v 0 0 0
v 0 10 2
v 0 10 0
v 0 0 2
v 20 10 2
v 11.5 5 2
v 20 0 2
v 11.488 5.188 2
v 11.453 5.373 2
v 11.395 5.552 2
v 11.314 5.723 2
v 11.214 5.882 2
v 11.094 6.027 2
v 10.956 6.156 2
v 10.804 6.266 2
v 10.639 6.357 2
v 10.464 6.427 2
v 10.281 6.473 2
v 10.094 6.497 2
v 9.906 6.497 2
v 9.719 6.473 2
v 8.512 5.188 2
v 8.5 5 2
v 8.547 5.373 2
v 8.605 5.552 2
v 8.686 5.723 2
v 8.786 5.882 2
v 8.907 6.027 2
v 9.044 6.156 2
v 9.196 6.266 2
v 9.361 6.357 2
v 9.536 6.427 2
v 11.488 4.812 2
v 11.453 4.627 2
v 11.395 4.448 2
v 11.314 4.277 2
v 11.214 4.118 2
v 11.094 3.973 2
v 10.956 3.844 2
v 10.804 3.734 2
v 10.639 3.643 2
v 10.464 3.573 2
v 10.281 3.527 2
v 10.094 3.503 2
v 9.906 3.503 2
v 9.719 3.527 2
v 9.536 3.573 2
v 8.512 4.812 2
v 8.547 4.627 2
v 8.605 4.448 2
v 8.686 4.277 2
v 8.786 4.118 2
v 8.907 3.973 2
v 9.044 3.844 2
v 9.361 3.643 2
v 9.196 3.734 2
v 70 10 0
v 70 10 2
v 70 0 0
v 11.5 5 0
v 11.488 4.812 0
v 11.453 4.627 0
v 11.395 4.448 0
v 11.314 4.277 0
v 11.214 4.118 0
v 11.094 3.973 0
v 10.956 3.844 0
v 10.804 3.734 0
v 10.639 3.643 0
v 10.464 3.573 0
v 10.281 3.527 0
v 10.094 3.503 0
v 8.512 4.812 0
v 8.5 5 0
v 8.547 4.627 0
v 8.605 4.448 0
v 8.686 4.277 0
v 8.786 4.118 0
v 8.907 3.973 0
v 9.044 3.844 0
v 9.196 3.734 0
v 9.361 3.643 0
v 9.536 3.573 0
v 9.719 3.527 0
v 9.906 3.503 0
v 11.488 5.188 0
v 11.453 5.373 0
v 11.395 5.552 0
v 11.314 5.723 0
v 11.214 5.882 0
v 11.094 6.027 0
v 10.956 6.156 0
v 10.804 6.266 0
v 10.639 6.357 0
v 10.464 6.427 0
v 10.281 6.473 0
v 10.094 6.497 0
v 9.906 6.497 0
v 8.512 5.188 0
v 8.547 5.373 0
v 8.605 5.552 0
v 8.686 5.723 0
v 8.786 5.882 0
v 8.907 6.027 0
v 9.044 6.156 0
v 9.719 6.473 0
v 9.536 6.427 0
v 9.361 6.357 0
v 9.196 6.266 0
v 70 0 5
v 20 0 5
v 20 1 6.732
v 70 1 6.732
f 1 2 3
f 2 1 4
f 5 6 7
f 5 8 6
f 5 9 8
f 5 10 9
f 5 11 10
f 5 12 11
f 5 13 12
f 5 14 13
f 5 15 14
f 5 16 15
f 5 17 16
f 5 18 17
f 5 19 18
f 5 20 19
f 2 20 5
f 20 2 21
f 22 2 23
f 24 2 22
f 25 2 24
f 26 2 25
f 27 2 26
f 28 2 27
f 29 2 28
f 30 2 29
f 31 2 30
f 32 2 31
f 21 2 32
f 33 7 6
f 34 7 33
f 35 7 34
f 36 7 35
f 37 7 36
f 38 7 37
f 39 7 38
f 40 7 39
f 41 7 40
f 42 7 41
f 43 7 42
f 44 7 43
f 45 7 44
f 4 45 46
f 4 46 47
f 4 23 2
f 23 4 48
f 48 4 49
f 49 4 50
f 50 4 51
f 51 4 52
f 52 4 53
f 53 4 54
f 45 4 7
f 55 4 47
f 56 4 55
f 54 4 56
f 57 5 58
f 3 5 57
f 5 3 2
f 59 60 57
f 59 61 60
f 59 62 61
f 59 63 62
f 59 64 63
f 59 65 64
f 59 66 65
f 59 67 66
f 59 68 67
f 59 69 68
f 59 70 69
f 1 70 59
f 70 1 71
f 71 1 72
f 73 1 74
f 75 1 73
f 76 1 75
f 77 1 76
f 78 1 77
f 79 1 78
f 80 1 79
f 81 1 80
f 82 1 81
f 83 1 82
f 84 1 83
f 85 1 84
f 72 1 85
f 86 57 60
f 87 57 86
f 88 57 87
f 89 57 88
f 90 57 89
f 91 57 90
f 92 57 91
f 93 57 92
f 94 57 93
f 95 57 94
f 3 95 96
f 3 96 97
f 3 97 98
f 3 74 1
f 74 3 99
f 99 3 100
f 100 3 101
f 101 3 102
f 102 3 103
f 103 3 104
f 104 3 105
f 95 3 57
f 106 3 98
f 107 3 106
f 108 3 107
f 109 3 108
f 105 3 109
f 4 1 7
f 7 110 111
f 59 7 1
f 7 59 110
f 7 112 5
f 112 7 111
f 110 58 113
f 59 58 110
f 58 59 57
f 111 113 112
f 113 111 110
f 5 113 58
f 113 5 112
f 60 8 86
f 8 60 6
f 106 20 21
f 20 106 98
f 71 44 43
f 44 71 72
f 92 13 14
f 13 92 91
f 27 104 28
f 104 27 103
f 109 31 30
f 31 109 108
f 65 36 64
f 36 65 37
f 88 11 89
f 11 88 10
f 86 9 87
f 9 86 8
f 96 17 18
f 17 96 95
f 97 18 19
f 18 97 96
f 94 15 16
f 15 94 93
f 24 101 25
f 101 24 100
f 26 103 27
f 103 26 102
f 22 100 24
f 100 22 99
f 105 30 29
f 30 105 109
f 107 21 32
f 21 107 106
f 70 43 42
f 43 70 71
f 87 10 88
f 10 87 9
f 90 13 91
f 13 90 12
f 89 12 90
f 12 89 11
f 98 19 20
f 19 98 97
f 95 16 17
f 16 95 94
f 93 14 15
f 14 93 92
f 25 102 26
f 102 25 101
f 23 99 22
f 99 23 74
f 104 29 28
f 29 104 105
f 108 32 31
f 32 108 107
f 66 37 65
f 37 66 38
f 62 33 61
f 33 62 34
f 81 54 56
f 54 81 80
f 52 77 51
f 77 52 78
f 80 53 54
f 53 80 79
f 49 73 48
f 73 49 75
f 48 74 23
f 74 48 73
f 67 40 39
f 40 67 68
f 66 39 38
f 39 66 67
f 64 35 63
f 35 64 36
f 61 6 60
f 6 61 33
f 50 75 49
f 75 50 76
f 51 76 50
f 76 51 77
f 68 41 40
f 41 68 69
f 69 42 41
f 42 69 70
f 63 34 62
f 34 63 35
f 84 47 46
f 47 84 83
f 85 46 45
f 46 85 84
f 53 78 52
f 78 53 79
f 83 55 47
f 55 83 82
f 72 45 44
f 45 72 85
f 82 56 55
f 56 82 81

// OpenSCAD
$fn=50;



module body() {
    cube([65,10,2]);
    translate([20,0,0]) hull() {
        cube([50,10,2]);
        translate([0,0,5]) rotate([-30,0,0]) cube([50,10,2]);
    }
}

module main() {
    difference() {
        body();
        translate([10,5,0]) cylinder(2,d=3);
    }
}

main();
